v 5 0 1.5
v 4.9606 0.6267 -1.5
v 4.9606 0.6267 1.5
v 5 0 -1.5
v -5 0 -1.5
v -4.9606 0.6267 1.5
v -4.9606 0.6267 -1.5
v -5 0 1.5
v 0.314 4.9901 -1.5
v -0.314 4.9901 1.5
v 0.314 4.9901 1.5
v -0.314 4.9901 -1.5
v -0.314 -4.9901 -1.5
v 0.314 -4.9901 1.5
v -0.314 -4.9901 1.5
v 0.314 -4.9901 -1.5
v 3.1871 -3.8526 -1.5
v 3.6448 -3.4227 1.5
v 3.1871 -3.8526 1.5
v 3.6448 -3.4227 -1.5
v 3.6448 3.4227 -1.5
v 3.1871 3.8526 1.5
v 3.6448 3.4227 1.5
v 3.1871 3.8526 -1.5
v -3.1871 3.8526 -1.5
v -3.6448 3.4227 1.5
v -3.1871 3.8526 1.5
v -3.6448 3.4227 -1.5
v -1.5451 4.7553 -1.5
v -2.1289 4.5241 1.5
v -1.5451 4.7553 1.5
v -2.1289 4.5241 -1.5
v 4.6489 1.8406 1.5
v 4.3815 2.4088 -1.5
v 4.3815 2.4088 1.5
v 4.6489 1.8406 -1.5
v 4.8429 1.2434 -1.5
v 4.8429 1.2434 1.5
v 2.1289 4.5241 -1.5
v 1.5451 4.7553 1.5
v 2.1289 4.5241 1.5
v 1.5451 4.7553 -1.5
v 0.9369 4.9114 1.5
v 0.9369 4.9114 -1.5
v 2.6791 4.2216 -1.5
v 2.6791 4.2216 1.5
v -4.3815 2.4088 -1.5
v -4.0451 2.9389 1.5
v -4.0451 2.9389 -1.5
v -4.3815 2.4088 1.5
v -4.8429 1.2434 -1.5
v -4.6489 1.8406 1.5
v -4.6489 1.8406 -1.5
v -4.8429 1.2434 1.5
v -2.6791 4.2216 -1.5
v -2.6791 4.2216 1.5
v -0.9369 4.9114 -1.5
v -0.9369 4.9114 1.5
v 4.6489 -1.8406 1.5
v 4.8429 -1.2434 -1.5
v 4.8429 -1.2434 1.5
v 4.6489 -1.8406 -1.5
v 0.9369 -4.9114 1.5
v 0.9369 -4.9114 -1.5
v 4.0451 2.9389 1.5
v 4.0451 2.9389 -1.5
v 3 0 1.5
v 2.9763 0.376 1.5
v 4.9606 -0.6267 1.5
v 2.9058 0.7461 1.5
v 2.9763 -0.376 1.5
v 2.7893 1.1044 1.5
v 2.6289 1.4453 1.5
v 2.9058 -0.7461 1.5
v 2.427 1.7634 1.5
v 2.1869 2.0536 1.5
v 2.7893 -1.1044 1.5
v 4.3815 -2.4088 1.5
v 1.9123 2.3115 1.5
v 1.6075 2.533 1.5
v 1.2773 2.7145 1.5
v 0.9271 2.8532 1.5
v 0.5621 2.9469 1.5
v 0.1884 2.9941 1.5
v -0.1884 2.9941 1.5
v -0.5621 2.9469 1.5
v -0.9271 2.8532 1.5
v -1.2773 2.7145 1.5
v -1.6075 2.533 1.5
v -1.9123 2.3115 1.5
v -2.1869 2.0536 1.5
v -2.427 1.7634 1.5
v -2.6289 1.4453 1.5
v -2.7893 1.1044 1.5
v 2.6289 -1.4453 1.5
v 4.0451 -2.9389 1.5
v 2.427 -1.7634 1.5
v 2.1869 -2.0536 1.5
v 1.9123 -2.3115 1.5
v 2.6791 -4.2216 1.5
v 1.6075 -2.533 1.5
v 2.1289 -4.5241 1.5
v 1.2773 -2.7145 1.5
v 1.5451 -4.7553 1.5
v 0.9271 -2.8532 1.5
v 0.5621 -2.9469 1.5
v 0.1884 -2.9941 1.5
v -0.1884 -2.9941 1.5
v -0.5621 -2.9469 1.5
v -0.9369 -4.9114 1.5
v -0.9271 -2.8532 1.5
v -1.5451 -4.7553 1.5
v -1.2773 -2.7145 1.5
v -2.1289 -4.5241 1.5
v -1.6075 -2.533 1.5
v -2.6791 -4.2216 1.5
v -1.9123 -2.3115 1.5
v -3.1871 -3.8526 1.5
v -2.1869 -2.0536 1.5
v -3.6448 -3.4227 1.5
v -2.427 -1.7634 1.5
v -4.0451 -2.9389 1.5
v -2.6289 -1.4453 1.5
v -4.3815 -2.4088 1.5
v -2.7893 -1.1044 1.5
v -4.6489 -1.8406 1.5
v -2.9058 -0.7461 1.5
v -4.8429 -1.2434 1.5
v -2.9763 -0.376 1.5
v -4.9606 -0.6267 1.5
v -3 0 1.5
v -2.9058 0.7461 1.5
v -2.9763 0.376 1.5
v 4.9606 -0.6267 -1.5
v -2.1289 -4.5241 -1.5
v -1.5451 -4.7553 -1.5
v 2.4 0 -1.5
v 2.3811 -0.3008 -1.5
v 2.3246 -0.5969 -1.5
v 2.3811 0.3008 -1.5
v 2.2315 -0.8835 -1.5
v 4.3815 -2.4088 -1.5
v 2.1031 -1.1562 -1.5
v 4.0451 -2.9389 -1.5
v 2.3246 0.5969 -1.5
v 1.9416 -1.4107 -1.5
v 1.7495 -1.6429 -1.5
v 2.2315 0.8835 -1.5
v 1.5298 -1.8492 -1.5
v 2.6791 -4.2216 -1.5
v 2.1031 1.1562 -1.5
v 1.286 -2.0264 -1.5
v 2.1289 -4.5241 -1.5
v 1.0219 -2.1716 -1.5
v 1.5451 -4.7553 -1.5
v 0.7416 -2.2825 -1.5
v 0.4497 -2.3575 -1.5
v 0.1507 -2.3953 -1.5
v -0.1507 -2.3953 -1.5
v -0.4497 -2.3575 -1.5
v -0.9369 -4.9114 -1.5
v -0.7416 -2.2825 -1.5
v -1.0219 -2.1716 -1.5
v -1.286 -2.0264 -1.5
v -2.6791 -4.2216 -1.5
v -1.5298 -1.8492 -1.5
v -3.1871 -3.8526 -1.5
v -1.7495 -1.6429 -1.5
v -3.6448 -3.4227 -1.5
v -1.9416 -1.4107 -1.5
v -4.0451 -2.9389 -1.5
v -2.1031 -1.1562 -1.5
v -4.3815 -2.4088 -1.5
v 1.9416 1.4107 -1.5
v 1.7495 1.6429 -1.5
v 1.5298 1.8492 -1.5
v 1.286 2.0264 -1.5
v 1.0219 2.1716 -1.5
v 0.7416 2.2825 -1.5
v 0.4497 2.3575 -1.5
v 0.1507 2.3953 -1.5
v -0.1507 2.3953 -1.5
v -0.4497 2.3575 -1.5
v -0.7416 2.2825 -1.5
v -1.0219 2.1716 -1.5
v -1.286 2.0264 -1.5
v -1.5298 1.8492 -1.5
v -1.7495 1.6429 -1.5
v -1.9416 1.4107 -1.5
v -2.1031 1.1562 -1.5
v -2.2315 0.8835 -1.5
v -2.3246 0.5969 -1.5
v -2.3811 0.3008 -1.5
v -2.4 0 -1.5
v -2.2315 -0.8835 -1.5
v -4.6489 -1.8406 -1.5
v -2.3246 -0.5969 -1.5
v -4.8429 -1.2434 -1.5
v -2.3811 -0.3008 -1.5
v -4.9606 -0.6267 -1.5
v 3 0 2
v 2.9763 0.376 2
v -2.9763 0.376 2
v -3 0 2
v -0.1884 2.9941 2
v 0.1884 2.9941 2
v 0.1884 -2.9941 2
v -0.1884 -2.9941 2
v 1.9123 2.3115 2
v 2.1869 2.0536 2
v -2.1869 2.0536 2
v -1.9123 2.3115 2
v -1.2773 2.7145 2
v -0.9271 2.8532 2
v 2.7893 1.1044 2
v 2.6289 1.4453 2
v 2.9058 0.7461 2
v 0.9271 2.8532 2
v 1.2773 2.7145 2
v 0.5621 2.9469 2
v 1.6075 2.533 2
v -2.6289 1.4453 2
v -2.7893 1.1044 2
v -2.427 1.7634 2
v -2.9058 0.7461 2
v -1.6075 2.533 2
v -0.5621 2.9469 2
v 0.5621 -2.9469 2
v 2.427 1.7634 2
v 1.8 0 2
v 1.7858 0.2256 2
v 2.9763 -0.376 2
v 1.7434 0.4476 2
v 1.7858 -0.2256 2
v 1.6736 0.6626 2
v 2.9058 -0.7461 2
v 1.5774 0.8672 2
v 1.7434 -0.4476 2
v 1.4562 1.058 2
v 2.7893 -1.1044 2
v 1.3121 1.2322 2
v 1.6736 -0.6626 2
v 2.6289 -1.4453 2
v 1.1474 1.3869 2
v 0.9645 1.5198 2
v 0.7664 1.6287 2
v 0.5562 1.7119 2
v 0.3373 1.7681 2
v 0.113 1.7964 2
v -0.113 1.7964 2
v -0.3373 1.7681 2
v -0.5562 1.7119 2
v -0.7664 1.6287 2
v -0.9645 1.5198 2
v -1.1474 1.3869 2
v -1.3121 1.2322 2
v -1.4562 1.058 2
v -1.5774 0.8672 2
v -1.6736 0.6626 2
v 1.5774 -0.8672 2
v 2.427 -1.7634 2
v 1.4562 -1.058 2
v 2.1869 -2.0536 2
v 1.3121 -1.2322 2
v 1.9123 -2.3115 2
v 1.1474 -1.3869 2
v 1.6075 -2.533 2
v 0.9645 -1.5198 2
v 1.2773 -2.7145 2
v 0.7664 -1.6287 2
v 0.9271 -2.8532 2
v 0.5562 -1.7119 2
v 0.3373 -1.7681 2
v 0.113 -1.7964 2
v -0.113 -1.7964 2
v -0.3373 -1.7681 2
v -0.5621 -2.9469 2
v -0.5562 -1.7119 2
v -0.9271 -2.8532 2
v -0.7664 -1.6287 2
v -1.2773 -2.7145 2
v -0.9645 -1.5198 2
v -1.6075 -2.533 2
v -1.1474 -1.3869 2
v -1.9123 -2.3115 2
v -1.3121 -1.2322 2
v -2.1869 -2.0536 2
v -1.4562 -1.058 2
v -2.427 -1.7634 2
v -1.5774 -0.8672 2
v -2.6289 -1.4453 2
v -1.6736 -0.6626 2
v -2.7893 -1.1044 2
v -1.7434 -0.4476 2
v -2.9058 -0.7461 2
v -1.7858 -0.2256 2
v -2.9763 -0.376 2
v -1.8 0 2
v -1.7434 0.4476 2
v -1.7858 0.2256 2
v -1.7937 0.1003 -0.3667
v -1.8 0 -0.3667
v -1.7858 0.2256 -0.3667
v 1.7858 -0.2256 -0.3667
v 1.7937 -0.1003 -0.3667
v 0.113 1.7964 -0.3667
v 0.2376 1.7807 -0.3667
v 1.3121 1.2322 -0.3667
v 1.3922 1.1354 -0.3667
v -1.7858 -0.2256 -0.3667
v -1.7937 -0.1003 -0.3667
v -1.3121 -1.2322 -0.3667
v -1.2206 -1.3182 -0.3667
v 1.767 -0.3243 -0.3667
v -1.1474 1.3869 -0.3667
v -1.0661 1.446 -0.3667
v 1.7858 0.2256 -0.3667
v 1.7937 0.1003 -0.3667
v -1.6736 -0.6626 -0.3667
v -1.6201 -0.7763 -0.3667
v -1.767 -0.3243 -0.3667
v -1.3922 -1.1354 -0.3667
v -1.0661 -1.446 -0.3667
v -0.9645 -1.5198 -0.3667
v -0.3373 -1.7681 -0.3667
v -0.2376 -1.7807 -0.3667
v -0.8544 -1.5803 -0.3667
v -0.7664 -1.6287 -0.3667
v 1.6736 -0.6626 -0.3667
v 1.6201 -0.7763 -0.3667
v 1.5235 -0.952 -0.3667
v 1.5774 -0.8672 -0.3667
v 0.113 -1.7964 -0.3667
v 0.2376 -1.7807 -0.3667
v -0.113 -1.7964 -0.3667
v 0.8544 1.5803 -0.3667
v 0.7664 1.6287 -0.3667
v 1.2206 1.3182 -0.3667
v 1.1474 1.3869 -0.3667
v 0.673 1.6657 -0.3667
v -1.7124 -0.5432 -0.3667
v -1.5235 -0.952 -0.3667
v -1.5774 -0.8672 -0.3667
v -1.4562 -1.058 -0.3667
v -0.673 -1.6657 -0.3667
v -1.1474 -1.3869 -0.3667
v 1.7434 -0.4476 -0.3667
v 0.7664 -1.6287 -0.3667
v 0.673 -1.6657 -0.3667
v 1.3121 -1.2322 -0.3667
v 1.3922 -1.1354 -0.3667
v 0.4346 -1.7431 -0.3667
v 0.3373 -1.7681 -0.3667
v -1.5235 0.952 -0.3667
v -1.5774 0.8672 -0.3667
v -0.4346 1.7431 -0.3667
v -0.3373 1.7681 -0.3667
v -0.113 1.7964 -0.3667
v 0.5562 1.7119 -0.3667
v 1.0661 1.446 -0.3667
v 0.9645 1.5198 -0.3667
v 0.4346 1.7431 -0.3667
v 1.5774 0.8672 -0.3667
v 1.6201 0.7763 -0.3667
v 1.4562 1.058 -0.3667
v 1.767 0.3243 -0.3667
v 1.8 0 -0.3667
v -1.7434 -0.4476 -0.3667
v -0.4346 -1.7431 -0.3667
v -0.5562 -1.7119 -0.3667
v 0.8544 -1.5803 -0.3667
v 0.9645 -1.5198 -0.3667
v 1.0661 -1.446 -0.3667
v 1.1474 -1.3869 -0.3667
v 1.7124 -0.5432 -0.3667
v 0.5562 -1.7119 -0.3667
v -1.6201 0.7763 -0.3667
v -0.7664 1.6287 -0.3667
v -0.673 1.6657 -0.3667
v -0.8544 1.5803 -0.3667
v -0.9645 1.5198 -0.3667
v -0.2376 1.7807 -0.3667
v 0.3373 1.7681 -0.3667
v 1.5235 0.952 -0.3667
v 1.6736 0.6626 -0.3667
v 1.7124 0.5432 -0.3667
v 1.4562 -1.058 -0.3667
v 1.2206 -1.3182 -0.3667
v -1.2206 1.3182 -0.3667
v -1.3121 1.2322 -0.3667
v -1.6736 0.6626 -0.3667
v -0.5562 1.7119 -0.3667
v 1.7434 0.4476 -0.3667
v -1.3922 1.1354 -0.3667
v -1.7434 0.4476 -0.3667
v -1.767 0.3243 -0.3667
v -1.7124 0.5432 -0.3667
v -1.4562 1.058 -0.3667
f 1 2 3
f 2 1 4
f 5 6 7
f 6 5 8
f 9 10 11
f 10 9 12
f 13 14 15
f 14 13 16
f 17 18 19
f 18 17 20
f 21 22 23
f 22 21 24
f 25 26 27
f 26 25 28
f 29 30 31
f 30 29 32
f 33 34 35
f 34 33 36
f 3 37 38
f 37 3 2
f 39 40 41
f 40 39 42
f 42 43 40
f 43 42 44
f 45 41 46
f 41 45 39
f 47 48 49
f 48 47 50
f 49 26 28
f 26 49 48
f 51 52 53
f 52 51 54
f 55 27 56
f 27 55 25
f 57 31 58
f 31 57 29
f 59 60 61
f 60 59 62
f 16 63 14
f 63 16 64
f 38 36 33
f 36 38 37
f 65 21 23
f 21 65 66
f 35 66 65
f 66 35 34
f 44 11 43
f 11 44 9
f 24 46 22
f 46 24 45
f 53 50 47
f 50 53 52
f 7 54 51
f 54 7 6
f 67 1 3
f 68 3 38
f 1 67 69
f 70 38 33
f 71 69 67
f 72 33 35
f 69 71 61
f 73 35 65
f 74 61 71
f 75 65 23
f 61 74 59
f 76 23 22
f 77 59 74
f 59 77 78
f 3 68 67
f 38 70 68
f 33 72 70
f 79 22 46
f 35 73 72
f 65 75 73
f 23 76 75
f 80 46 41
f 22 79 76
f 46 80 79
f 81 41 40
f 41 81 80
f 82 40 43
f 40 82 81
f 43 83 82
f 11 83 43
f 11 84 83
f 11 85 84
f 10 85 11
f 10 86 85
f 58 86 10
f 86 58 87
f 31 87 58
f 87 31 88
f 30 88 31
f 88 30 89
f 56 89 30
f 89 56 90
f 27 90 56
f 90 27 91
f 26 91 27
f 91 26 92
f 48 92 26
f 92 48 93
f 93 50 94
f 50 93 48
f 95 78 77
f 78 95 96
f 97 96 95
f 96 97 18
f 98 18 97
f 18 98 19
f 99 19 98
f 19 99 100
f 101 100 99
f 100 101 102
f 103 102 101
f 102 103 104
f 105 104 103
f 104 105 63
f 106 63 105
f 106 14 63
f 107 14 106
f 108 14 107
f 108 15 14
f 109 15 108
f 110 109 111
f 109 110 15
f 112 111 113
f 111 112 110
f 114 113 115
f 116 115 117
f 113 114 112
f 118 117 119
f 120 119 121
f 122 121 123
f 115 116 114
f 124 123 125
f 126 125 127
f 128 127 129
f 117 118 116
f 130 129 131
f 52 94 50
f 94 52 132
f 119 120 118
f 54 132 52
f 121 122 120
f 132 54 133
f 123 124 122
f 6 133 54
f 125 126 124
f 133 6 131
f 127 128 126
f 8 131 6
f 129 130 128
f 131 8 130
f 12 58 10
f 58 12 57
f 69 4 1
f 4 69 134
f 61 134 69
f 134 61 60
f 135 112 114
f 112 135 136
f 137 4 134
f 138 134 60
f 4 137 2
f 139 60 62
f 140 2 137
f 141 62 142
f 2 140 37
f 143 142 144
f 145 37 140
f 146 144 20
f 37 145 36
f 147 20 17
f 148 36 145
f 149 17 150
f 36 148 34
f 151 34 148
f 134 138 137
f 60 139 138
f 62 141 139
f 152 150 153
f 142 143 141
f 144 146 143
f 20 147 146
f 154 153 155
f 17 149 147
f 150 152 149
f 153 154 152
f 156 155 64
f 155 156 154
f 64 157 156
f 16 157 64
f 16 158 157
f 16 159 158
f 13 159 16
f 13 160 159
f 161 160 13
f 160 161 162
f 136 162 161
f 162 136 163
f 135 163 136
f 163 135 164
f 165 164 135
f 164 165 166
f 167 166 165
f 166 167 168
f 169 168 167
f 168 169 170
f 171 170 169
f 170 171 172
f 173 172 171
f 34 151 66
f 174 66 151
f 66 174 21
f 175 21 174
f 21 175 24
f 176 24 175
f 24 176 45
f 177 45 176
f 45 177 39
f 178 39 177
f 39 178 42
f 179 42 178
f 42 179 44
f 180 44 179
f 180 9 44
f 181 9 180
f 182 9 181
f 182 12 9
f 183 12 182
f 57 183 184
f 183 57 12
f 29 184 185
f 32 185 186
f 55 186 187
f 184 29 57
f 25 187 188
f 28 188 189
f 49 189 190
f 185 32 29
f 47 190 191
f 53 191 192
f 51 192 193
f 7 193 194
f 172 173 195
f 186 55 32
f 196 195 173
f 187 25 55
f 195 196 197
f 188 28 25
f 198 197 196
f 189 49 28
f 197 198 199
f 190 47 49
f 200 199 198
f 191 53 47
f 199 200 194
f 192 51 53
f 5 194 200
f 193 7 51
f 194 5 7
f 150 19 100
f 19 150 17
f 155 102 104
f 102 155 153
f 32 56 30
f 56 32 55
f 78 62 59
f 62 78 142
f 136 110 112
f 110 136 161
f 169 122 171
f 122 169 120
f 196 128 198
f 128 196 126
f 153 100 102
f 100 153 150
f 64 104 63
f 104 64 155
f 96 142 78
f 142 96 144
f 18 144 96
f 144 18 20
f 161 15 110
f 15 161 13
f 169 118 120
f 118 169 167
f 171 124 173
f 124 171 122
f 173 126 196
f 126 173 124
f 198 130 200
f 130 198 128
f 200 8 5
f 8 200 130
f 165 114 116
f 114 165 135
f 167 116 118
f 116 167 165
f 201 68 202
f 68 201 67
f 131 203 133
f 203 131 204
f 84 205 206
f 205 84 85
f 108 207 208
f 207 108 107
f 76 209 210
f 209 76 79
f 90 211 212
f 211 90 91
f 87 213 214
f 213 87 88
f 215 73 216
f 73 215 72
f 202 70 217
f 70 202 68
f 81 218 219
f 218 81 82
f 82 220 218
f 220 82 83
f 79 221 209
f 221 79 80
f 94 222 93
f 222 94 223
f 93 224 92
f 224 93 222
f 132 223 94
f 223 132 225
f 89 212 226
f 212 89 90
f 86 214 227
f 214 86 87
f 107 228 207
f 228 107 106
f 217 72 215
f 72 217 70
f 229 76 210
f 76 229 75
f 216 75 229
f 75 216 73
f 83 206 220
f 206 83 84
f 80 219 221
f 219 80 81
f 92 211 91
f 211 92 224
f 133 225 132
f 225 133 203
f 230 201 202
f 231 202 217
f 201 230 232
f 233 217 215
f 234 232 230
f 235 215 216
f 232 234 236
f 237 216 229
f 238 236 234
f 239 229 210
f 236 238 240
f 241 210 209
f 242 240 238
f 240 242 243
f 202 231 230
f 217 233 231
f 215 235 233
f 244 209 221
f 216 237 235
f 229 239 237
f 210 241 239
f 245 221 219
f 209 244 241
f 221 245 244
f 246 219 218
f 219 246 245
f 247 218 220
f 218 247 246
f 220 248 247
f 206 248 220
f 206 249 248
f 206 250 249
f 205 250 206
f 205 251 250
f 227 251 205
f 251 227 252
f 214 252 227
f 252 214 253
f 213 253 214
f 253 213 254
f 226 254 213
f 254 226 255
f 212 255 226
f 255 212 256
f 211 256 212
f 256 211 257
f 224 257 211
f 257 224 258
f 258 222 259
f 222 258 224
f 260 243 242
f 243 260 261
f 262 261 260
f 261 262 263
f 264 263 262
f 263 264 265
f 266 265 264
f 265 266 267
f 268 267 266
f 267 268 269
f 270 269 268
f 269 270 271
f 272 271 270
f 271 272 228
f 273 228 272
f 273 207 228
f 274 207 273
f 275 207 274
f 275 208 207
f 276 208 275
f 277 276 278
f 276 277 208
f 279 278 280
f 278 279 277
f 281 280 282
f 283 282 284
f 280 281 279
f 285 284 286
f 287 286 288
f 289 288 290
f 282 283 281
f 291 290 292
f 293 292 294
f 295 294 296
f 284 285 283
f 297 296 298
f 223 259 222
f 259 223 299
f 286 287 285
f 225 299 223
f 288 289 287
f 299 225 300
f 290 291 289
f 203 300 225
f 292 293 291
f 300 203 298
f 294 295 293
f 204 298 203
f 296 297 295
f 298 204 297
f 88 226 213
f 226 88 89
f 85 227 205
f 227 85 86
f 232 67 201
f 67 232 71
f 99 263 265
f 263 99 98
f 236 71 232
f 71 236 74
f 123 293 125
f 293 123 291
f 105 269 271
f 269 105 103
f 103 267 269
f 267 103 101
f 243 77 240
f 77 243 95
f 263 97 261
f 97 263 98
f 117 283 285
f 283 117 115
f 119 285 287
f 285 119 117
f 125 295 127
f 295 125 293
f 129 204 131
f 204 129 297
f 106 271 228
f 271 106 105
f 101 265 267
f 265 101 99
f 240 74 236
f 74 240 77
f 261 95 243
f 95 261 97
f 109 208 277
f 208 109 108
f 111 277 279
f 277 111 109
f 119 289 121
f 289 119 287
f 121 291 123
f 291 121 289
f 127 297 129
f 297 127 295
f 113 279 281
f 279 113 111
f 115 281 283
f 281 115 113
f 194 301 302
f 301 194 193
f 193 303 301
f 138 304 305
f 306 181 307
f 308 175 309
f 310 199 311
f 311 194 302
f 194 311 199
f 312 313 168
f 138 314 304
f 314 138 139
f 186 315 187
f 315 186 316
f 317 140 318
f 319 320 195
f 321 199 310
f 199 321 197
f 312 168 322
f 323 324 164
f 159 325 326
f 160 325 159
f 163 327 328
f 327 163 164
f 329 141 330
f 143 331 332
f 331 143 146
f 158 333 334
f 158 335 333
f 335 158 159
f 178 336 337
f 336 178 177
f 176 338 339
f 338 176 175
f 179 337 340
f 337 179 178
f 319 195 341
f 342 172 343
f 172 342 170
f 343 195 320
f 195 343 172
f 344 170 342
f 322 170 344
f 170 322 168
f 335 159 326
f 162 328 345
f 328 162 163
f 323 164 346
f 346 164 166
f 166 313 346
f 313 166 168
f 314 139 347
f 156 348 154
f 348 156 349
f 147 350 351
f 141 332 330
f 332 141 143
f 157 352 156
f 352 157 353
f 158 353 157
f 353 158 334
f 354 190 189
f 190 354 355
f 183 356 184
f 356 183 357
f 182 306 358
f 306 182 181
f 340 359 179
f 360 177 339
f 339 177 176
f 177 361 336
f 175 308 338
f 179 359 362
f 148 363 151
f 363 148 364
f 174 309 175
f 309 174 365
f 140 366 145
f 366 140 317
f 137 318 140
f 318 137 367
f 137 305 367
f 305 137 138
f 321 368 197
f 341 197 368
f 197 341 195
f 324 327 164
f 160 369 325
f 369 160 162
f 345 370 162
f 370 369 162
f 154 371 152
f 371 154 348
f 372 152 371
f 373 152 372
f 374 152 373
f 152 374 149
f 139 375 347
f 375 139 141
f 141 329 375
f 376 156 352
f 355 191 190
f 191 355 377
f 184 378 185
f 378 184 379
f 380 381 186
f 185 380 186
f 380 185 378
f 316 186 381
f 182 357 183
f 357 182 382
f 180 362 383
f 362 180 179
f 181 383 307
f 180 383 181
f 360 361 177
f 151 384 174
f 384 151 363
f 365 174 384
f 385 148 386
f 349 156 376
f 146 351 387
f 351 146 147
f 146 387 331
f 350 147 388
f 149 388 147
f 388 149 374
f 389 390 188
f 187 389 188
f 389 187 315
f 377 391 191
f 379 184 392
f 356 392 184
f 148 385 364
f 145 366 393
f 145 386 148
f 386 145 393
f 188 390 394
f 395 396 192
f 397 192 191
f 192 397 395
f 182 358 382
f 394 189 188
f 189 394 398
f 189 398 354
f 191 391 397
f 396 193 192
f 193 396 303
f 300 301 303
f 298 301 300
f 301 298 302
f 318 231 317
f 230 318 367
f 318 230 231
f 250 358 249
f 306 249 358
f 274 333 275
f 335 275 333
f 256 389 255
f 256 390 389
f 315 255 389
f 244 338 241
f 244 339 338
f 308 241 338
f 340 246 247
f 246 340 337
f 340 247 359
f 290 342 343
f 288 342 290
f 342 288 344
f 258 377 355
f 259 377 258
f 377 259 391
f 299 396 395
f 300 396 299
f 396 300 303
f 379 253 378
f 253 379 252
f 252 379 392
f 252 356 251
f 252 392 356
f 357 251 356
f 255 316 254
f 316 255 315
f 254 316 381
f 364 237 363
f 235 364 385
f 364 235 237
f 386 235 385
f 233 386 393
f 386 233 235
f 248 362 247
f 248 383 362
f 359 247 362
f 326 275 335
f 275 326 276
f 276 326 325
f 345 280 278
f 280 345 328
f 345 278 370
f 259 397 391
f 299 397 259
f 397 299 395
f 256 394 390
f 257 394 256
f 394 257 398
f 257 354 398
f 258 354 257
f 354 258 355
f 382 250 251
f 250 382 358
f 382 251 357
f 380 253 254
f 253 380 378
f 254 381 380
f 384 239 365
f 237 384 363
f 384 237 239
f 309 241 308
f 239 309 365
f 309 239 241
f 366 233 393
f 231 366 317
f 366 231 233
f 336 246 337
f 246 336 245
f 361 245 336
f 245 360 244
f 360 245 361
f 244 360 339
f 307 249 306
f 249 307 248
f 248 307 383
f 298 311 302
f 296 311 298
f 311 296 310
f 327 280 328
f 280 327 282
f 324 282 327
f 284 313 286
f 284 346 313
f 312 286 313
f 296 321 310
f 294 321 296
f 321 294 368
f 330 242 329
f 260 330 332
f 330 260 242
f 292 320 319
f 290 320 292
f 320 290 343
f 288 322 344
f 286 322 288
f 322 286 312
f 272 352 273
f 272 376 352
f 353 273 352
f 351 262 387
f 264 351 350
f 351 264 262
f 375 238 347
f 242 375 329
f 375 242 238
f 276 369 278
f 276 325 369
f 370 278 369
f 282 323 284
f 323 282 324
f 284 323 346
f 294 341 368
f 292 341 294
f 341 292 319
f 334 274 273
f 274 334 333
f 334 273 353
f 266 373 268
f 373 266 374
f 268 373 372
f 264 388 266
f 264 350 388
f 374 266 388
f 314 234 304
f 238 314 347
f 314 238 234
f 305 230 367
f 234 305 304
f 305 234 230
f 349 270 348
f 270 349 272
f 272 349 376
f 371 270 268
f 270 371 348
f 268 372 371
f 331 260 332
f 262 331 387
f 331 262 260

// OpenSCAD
$fn = 50;


difference() {
	union() {
		translate(v = [0, 0, -1.5000000000]) {
			cylinder(h = 3, r = 5.0000000000);
		}
		translate(v = [0, 0, -1.5000000000]) {
			cylinder(h = 3.5000000000, r = 3.0000000000);
		}
	}
	union() {
		translate(v = [0, 0, -1.5000000000]) {
			rotate(a = [0, 180, 0]) {
				difference() {
					union() {
						translate(v = [0, 0, -1.7000000000]) {
							cylinder(h = 1.7000000000, r1 = 1.5000000000, r2 = 2.4000000000);
						}
						translate(v = [0, 0, -3.5000000000]) {
							cylinder(h = 3.5000000000, r = 1.5000000000);
						}
						translate(v = [0, 0, -3.5000000000]) {
							cylinder(h = 3.5000000000, r = 1.8000000000);
						}
						translate(v = [0, 0, -3.5000000000]) {
							cylinder(h = 3.5000000000, r = 1.5000000000);
						}
					}
					union();
				}
			}
		}
		translate(v = [0, 0, -50.0000000000]) {
			cylinder(h = 100, r = 1.5000000000);
		}
	}
}
